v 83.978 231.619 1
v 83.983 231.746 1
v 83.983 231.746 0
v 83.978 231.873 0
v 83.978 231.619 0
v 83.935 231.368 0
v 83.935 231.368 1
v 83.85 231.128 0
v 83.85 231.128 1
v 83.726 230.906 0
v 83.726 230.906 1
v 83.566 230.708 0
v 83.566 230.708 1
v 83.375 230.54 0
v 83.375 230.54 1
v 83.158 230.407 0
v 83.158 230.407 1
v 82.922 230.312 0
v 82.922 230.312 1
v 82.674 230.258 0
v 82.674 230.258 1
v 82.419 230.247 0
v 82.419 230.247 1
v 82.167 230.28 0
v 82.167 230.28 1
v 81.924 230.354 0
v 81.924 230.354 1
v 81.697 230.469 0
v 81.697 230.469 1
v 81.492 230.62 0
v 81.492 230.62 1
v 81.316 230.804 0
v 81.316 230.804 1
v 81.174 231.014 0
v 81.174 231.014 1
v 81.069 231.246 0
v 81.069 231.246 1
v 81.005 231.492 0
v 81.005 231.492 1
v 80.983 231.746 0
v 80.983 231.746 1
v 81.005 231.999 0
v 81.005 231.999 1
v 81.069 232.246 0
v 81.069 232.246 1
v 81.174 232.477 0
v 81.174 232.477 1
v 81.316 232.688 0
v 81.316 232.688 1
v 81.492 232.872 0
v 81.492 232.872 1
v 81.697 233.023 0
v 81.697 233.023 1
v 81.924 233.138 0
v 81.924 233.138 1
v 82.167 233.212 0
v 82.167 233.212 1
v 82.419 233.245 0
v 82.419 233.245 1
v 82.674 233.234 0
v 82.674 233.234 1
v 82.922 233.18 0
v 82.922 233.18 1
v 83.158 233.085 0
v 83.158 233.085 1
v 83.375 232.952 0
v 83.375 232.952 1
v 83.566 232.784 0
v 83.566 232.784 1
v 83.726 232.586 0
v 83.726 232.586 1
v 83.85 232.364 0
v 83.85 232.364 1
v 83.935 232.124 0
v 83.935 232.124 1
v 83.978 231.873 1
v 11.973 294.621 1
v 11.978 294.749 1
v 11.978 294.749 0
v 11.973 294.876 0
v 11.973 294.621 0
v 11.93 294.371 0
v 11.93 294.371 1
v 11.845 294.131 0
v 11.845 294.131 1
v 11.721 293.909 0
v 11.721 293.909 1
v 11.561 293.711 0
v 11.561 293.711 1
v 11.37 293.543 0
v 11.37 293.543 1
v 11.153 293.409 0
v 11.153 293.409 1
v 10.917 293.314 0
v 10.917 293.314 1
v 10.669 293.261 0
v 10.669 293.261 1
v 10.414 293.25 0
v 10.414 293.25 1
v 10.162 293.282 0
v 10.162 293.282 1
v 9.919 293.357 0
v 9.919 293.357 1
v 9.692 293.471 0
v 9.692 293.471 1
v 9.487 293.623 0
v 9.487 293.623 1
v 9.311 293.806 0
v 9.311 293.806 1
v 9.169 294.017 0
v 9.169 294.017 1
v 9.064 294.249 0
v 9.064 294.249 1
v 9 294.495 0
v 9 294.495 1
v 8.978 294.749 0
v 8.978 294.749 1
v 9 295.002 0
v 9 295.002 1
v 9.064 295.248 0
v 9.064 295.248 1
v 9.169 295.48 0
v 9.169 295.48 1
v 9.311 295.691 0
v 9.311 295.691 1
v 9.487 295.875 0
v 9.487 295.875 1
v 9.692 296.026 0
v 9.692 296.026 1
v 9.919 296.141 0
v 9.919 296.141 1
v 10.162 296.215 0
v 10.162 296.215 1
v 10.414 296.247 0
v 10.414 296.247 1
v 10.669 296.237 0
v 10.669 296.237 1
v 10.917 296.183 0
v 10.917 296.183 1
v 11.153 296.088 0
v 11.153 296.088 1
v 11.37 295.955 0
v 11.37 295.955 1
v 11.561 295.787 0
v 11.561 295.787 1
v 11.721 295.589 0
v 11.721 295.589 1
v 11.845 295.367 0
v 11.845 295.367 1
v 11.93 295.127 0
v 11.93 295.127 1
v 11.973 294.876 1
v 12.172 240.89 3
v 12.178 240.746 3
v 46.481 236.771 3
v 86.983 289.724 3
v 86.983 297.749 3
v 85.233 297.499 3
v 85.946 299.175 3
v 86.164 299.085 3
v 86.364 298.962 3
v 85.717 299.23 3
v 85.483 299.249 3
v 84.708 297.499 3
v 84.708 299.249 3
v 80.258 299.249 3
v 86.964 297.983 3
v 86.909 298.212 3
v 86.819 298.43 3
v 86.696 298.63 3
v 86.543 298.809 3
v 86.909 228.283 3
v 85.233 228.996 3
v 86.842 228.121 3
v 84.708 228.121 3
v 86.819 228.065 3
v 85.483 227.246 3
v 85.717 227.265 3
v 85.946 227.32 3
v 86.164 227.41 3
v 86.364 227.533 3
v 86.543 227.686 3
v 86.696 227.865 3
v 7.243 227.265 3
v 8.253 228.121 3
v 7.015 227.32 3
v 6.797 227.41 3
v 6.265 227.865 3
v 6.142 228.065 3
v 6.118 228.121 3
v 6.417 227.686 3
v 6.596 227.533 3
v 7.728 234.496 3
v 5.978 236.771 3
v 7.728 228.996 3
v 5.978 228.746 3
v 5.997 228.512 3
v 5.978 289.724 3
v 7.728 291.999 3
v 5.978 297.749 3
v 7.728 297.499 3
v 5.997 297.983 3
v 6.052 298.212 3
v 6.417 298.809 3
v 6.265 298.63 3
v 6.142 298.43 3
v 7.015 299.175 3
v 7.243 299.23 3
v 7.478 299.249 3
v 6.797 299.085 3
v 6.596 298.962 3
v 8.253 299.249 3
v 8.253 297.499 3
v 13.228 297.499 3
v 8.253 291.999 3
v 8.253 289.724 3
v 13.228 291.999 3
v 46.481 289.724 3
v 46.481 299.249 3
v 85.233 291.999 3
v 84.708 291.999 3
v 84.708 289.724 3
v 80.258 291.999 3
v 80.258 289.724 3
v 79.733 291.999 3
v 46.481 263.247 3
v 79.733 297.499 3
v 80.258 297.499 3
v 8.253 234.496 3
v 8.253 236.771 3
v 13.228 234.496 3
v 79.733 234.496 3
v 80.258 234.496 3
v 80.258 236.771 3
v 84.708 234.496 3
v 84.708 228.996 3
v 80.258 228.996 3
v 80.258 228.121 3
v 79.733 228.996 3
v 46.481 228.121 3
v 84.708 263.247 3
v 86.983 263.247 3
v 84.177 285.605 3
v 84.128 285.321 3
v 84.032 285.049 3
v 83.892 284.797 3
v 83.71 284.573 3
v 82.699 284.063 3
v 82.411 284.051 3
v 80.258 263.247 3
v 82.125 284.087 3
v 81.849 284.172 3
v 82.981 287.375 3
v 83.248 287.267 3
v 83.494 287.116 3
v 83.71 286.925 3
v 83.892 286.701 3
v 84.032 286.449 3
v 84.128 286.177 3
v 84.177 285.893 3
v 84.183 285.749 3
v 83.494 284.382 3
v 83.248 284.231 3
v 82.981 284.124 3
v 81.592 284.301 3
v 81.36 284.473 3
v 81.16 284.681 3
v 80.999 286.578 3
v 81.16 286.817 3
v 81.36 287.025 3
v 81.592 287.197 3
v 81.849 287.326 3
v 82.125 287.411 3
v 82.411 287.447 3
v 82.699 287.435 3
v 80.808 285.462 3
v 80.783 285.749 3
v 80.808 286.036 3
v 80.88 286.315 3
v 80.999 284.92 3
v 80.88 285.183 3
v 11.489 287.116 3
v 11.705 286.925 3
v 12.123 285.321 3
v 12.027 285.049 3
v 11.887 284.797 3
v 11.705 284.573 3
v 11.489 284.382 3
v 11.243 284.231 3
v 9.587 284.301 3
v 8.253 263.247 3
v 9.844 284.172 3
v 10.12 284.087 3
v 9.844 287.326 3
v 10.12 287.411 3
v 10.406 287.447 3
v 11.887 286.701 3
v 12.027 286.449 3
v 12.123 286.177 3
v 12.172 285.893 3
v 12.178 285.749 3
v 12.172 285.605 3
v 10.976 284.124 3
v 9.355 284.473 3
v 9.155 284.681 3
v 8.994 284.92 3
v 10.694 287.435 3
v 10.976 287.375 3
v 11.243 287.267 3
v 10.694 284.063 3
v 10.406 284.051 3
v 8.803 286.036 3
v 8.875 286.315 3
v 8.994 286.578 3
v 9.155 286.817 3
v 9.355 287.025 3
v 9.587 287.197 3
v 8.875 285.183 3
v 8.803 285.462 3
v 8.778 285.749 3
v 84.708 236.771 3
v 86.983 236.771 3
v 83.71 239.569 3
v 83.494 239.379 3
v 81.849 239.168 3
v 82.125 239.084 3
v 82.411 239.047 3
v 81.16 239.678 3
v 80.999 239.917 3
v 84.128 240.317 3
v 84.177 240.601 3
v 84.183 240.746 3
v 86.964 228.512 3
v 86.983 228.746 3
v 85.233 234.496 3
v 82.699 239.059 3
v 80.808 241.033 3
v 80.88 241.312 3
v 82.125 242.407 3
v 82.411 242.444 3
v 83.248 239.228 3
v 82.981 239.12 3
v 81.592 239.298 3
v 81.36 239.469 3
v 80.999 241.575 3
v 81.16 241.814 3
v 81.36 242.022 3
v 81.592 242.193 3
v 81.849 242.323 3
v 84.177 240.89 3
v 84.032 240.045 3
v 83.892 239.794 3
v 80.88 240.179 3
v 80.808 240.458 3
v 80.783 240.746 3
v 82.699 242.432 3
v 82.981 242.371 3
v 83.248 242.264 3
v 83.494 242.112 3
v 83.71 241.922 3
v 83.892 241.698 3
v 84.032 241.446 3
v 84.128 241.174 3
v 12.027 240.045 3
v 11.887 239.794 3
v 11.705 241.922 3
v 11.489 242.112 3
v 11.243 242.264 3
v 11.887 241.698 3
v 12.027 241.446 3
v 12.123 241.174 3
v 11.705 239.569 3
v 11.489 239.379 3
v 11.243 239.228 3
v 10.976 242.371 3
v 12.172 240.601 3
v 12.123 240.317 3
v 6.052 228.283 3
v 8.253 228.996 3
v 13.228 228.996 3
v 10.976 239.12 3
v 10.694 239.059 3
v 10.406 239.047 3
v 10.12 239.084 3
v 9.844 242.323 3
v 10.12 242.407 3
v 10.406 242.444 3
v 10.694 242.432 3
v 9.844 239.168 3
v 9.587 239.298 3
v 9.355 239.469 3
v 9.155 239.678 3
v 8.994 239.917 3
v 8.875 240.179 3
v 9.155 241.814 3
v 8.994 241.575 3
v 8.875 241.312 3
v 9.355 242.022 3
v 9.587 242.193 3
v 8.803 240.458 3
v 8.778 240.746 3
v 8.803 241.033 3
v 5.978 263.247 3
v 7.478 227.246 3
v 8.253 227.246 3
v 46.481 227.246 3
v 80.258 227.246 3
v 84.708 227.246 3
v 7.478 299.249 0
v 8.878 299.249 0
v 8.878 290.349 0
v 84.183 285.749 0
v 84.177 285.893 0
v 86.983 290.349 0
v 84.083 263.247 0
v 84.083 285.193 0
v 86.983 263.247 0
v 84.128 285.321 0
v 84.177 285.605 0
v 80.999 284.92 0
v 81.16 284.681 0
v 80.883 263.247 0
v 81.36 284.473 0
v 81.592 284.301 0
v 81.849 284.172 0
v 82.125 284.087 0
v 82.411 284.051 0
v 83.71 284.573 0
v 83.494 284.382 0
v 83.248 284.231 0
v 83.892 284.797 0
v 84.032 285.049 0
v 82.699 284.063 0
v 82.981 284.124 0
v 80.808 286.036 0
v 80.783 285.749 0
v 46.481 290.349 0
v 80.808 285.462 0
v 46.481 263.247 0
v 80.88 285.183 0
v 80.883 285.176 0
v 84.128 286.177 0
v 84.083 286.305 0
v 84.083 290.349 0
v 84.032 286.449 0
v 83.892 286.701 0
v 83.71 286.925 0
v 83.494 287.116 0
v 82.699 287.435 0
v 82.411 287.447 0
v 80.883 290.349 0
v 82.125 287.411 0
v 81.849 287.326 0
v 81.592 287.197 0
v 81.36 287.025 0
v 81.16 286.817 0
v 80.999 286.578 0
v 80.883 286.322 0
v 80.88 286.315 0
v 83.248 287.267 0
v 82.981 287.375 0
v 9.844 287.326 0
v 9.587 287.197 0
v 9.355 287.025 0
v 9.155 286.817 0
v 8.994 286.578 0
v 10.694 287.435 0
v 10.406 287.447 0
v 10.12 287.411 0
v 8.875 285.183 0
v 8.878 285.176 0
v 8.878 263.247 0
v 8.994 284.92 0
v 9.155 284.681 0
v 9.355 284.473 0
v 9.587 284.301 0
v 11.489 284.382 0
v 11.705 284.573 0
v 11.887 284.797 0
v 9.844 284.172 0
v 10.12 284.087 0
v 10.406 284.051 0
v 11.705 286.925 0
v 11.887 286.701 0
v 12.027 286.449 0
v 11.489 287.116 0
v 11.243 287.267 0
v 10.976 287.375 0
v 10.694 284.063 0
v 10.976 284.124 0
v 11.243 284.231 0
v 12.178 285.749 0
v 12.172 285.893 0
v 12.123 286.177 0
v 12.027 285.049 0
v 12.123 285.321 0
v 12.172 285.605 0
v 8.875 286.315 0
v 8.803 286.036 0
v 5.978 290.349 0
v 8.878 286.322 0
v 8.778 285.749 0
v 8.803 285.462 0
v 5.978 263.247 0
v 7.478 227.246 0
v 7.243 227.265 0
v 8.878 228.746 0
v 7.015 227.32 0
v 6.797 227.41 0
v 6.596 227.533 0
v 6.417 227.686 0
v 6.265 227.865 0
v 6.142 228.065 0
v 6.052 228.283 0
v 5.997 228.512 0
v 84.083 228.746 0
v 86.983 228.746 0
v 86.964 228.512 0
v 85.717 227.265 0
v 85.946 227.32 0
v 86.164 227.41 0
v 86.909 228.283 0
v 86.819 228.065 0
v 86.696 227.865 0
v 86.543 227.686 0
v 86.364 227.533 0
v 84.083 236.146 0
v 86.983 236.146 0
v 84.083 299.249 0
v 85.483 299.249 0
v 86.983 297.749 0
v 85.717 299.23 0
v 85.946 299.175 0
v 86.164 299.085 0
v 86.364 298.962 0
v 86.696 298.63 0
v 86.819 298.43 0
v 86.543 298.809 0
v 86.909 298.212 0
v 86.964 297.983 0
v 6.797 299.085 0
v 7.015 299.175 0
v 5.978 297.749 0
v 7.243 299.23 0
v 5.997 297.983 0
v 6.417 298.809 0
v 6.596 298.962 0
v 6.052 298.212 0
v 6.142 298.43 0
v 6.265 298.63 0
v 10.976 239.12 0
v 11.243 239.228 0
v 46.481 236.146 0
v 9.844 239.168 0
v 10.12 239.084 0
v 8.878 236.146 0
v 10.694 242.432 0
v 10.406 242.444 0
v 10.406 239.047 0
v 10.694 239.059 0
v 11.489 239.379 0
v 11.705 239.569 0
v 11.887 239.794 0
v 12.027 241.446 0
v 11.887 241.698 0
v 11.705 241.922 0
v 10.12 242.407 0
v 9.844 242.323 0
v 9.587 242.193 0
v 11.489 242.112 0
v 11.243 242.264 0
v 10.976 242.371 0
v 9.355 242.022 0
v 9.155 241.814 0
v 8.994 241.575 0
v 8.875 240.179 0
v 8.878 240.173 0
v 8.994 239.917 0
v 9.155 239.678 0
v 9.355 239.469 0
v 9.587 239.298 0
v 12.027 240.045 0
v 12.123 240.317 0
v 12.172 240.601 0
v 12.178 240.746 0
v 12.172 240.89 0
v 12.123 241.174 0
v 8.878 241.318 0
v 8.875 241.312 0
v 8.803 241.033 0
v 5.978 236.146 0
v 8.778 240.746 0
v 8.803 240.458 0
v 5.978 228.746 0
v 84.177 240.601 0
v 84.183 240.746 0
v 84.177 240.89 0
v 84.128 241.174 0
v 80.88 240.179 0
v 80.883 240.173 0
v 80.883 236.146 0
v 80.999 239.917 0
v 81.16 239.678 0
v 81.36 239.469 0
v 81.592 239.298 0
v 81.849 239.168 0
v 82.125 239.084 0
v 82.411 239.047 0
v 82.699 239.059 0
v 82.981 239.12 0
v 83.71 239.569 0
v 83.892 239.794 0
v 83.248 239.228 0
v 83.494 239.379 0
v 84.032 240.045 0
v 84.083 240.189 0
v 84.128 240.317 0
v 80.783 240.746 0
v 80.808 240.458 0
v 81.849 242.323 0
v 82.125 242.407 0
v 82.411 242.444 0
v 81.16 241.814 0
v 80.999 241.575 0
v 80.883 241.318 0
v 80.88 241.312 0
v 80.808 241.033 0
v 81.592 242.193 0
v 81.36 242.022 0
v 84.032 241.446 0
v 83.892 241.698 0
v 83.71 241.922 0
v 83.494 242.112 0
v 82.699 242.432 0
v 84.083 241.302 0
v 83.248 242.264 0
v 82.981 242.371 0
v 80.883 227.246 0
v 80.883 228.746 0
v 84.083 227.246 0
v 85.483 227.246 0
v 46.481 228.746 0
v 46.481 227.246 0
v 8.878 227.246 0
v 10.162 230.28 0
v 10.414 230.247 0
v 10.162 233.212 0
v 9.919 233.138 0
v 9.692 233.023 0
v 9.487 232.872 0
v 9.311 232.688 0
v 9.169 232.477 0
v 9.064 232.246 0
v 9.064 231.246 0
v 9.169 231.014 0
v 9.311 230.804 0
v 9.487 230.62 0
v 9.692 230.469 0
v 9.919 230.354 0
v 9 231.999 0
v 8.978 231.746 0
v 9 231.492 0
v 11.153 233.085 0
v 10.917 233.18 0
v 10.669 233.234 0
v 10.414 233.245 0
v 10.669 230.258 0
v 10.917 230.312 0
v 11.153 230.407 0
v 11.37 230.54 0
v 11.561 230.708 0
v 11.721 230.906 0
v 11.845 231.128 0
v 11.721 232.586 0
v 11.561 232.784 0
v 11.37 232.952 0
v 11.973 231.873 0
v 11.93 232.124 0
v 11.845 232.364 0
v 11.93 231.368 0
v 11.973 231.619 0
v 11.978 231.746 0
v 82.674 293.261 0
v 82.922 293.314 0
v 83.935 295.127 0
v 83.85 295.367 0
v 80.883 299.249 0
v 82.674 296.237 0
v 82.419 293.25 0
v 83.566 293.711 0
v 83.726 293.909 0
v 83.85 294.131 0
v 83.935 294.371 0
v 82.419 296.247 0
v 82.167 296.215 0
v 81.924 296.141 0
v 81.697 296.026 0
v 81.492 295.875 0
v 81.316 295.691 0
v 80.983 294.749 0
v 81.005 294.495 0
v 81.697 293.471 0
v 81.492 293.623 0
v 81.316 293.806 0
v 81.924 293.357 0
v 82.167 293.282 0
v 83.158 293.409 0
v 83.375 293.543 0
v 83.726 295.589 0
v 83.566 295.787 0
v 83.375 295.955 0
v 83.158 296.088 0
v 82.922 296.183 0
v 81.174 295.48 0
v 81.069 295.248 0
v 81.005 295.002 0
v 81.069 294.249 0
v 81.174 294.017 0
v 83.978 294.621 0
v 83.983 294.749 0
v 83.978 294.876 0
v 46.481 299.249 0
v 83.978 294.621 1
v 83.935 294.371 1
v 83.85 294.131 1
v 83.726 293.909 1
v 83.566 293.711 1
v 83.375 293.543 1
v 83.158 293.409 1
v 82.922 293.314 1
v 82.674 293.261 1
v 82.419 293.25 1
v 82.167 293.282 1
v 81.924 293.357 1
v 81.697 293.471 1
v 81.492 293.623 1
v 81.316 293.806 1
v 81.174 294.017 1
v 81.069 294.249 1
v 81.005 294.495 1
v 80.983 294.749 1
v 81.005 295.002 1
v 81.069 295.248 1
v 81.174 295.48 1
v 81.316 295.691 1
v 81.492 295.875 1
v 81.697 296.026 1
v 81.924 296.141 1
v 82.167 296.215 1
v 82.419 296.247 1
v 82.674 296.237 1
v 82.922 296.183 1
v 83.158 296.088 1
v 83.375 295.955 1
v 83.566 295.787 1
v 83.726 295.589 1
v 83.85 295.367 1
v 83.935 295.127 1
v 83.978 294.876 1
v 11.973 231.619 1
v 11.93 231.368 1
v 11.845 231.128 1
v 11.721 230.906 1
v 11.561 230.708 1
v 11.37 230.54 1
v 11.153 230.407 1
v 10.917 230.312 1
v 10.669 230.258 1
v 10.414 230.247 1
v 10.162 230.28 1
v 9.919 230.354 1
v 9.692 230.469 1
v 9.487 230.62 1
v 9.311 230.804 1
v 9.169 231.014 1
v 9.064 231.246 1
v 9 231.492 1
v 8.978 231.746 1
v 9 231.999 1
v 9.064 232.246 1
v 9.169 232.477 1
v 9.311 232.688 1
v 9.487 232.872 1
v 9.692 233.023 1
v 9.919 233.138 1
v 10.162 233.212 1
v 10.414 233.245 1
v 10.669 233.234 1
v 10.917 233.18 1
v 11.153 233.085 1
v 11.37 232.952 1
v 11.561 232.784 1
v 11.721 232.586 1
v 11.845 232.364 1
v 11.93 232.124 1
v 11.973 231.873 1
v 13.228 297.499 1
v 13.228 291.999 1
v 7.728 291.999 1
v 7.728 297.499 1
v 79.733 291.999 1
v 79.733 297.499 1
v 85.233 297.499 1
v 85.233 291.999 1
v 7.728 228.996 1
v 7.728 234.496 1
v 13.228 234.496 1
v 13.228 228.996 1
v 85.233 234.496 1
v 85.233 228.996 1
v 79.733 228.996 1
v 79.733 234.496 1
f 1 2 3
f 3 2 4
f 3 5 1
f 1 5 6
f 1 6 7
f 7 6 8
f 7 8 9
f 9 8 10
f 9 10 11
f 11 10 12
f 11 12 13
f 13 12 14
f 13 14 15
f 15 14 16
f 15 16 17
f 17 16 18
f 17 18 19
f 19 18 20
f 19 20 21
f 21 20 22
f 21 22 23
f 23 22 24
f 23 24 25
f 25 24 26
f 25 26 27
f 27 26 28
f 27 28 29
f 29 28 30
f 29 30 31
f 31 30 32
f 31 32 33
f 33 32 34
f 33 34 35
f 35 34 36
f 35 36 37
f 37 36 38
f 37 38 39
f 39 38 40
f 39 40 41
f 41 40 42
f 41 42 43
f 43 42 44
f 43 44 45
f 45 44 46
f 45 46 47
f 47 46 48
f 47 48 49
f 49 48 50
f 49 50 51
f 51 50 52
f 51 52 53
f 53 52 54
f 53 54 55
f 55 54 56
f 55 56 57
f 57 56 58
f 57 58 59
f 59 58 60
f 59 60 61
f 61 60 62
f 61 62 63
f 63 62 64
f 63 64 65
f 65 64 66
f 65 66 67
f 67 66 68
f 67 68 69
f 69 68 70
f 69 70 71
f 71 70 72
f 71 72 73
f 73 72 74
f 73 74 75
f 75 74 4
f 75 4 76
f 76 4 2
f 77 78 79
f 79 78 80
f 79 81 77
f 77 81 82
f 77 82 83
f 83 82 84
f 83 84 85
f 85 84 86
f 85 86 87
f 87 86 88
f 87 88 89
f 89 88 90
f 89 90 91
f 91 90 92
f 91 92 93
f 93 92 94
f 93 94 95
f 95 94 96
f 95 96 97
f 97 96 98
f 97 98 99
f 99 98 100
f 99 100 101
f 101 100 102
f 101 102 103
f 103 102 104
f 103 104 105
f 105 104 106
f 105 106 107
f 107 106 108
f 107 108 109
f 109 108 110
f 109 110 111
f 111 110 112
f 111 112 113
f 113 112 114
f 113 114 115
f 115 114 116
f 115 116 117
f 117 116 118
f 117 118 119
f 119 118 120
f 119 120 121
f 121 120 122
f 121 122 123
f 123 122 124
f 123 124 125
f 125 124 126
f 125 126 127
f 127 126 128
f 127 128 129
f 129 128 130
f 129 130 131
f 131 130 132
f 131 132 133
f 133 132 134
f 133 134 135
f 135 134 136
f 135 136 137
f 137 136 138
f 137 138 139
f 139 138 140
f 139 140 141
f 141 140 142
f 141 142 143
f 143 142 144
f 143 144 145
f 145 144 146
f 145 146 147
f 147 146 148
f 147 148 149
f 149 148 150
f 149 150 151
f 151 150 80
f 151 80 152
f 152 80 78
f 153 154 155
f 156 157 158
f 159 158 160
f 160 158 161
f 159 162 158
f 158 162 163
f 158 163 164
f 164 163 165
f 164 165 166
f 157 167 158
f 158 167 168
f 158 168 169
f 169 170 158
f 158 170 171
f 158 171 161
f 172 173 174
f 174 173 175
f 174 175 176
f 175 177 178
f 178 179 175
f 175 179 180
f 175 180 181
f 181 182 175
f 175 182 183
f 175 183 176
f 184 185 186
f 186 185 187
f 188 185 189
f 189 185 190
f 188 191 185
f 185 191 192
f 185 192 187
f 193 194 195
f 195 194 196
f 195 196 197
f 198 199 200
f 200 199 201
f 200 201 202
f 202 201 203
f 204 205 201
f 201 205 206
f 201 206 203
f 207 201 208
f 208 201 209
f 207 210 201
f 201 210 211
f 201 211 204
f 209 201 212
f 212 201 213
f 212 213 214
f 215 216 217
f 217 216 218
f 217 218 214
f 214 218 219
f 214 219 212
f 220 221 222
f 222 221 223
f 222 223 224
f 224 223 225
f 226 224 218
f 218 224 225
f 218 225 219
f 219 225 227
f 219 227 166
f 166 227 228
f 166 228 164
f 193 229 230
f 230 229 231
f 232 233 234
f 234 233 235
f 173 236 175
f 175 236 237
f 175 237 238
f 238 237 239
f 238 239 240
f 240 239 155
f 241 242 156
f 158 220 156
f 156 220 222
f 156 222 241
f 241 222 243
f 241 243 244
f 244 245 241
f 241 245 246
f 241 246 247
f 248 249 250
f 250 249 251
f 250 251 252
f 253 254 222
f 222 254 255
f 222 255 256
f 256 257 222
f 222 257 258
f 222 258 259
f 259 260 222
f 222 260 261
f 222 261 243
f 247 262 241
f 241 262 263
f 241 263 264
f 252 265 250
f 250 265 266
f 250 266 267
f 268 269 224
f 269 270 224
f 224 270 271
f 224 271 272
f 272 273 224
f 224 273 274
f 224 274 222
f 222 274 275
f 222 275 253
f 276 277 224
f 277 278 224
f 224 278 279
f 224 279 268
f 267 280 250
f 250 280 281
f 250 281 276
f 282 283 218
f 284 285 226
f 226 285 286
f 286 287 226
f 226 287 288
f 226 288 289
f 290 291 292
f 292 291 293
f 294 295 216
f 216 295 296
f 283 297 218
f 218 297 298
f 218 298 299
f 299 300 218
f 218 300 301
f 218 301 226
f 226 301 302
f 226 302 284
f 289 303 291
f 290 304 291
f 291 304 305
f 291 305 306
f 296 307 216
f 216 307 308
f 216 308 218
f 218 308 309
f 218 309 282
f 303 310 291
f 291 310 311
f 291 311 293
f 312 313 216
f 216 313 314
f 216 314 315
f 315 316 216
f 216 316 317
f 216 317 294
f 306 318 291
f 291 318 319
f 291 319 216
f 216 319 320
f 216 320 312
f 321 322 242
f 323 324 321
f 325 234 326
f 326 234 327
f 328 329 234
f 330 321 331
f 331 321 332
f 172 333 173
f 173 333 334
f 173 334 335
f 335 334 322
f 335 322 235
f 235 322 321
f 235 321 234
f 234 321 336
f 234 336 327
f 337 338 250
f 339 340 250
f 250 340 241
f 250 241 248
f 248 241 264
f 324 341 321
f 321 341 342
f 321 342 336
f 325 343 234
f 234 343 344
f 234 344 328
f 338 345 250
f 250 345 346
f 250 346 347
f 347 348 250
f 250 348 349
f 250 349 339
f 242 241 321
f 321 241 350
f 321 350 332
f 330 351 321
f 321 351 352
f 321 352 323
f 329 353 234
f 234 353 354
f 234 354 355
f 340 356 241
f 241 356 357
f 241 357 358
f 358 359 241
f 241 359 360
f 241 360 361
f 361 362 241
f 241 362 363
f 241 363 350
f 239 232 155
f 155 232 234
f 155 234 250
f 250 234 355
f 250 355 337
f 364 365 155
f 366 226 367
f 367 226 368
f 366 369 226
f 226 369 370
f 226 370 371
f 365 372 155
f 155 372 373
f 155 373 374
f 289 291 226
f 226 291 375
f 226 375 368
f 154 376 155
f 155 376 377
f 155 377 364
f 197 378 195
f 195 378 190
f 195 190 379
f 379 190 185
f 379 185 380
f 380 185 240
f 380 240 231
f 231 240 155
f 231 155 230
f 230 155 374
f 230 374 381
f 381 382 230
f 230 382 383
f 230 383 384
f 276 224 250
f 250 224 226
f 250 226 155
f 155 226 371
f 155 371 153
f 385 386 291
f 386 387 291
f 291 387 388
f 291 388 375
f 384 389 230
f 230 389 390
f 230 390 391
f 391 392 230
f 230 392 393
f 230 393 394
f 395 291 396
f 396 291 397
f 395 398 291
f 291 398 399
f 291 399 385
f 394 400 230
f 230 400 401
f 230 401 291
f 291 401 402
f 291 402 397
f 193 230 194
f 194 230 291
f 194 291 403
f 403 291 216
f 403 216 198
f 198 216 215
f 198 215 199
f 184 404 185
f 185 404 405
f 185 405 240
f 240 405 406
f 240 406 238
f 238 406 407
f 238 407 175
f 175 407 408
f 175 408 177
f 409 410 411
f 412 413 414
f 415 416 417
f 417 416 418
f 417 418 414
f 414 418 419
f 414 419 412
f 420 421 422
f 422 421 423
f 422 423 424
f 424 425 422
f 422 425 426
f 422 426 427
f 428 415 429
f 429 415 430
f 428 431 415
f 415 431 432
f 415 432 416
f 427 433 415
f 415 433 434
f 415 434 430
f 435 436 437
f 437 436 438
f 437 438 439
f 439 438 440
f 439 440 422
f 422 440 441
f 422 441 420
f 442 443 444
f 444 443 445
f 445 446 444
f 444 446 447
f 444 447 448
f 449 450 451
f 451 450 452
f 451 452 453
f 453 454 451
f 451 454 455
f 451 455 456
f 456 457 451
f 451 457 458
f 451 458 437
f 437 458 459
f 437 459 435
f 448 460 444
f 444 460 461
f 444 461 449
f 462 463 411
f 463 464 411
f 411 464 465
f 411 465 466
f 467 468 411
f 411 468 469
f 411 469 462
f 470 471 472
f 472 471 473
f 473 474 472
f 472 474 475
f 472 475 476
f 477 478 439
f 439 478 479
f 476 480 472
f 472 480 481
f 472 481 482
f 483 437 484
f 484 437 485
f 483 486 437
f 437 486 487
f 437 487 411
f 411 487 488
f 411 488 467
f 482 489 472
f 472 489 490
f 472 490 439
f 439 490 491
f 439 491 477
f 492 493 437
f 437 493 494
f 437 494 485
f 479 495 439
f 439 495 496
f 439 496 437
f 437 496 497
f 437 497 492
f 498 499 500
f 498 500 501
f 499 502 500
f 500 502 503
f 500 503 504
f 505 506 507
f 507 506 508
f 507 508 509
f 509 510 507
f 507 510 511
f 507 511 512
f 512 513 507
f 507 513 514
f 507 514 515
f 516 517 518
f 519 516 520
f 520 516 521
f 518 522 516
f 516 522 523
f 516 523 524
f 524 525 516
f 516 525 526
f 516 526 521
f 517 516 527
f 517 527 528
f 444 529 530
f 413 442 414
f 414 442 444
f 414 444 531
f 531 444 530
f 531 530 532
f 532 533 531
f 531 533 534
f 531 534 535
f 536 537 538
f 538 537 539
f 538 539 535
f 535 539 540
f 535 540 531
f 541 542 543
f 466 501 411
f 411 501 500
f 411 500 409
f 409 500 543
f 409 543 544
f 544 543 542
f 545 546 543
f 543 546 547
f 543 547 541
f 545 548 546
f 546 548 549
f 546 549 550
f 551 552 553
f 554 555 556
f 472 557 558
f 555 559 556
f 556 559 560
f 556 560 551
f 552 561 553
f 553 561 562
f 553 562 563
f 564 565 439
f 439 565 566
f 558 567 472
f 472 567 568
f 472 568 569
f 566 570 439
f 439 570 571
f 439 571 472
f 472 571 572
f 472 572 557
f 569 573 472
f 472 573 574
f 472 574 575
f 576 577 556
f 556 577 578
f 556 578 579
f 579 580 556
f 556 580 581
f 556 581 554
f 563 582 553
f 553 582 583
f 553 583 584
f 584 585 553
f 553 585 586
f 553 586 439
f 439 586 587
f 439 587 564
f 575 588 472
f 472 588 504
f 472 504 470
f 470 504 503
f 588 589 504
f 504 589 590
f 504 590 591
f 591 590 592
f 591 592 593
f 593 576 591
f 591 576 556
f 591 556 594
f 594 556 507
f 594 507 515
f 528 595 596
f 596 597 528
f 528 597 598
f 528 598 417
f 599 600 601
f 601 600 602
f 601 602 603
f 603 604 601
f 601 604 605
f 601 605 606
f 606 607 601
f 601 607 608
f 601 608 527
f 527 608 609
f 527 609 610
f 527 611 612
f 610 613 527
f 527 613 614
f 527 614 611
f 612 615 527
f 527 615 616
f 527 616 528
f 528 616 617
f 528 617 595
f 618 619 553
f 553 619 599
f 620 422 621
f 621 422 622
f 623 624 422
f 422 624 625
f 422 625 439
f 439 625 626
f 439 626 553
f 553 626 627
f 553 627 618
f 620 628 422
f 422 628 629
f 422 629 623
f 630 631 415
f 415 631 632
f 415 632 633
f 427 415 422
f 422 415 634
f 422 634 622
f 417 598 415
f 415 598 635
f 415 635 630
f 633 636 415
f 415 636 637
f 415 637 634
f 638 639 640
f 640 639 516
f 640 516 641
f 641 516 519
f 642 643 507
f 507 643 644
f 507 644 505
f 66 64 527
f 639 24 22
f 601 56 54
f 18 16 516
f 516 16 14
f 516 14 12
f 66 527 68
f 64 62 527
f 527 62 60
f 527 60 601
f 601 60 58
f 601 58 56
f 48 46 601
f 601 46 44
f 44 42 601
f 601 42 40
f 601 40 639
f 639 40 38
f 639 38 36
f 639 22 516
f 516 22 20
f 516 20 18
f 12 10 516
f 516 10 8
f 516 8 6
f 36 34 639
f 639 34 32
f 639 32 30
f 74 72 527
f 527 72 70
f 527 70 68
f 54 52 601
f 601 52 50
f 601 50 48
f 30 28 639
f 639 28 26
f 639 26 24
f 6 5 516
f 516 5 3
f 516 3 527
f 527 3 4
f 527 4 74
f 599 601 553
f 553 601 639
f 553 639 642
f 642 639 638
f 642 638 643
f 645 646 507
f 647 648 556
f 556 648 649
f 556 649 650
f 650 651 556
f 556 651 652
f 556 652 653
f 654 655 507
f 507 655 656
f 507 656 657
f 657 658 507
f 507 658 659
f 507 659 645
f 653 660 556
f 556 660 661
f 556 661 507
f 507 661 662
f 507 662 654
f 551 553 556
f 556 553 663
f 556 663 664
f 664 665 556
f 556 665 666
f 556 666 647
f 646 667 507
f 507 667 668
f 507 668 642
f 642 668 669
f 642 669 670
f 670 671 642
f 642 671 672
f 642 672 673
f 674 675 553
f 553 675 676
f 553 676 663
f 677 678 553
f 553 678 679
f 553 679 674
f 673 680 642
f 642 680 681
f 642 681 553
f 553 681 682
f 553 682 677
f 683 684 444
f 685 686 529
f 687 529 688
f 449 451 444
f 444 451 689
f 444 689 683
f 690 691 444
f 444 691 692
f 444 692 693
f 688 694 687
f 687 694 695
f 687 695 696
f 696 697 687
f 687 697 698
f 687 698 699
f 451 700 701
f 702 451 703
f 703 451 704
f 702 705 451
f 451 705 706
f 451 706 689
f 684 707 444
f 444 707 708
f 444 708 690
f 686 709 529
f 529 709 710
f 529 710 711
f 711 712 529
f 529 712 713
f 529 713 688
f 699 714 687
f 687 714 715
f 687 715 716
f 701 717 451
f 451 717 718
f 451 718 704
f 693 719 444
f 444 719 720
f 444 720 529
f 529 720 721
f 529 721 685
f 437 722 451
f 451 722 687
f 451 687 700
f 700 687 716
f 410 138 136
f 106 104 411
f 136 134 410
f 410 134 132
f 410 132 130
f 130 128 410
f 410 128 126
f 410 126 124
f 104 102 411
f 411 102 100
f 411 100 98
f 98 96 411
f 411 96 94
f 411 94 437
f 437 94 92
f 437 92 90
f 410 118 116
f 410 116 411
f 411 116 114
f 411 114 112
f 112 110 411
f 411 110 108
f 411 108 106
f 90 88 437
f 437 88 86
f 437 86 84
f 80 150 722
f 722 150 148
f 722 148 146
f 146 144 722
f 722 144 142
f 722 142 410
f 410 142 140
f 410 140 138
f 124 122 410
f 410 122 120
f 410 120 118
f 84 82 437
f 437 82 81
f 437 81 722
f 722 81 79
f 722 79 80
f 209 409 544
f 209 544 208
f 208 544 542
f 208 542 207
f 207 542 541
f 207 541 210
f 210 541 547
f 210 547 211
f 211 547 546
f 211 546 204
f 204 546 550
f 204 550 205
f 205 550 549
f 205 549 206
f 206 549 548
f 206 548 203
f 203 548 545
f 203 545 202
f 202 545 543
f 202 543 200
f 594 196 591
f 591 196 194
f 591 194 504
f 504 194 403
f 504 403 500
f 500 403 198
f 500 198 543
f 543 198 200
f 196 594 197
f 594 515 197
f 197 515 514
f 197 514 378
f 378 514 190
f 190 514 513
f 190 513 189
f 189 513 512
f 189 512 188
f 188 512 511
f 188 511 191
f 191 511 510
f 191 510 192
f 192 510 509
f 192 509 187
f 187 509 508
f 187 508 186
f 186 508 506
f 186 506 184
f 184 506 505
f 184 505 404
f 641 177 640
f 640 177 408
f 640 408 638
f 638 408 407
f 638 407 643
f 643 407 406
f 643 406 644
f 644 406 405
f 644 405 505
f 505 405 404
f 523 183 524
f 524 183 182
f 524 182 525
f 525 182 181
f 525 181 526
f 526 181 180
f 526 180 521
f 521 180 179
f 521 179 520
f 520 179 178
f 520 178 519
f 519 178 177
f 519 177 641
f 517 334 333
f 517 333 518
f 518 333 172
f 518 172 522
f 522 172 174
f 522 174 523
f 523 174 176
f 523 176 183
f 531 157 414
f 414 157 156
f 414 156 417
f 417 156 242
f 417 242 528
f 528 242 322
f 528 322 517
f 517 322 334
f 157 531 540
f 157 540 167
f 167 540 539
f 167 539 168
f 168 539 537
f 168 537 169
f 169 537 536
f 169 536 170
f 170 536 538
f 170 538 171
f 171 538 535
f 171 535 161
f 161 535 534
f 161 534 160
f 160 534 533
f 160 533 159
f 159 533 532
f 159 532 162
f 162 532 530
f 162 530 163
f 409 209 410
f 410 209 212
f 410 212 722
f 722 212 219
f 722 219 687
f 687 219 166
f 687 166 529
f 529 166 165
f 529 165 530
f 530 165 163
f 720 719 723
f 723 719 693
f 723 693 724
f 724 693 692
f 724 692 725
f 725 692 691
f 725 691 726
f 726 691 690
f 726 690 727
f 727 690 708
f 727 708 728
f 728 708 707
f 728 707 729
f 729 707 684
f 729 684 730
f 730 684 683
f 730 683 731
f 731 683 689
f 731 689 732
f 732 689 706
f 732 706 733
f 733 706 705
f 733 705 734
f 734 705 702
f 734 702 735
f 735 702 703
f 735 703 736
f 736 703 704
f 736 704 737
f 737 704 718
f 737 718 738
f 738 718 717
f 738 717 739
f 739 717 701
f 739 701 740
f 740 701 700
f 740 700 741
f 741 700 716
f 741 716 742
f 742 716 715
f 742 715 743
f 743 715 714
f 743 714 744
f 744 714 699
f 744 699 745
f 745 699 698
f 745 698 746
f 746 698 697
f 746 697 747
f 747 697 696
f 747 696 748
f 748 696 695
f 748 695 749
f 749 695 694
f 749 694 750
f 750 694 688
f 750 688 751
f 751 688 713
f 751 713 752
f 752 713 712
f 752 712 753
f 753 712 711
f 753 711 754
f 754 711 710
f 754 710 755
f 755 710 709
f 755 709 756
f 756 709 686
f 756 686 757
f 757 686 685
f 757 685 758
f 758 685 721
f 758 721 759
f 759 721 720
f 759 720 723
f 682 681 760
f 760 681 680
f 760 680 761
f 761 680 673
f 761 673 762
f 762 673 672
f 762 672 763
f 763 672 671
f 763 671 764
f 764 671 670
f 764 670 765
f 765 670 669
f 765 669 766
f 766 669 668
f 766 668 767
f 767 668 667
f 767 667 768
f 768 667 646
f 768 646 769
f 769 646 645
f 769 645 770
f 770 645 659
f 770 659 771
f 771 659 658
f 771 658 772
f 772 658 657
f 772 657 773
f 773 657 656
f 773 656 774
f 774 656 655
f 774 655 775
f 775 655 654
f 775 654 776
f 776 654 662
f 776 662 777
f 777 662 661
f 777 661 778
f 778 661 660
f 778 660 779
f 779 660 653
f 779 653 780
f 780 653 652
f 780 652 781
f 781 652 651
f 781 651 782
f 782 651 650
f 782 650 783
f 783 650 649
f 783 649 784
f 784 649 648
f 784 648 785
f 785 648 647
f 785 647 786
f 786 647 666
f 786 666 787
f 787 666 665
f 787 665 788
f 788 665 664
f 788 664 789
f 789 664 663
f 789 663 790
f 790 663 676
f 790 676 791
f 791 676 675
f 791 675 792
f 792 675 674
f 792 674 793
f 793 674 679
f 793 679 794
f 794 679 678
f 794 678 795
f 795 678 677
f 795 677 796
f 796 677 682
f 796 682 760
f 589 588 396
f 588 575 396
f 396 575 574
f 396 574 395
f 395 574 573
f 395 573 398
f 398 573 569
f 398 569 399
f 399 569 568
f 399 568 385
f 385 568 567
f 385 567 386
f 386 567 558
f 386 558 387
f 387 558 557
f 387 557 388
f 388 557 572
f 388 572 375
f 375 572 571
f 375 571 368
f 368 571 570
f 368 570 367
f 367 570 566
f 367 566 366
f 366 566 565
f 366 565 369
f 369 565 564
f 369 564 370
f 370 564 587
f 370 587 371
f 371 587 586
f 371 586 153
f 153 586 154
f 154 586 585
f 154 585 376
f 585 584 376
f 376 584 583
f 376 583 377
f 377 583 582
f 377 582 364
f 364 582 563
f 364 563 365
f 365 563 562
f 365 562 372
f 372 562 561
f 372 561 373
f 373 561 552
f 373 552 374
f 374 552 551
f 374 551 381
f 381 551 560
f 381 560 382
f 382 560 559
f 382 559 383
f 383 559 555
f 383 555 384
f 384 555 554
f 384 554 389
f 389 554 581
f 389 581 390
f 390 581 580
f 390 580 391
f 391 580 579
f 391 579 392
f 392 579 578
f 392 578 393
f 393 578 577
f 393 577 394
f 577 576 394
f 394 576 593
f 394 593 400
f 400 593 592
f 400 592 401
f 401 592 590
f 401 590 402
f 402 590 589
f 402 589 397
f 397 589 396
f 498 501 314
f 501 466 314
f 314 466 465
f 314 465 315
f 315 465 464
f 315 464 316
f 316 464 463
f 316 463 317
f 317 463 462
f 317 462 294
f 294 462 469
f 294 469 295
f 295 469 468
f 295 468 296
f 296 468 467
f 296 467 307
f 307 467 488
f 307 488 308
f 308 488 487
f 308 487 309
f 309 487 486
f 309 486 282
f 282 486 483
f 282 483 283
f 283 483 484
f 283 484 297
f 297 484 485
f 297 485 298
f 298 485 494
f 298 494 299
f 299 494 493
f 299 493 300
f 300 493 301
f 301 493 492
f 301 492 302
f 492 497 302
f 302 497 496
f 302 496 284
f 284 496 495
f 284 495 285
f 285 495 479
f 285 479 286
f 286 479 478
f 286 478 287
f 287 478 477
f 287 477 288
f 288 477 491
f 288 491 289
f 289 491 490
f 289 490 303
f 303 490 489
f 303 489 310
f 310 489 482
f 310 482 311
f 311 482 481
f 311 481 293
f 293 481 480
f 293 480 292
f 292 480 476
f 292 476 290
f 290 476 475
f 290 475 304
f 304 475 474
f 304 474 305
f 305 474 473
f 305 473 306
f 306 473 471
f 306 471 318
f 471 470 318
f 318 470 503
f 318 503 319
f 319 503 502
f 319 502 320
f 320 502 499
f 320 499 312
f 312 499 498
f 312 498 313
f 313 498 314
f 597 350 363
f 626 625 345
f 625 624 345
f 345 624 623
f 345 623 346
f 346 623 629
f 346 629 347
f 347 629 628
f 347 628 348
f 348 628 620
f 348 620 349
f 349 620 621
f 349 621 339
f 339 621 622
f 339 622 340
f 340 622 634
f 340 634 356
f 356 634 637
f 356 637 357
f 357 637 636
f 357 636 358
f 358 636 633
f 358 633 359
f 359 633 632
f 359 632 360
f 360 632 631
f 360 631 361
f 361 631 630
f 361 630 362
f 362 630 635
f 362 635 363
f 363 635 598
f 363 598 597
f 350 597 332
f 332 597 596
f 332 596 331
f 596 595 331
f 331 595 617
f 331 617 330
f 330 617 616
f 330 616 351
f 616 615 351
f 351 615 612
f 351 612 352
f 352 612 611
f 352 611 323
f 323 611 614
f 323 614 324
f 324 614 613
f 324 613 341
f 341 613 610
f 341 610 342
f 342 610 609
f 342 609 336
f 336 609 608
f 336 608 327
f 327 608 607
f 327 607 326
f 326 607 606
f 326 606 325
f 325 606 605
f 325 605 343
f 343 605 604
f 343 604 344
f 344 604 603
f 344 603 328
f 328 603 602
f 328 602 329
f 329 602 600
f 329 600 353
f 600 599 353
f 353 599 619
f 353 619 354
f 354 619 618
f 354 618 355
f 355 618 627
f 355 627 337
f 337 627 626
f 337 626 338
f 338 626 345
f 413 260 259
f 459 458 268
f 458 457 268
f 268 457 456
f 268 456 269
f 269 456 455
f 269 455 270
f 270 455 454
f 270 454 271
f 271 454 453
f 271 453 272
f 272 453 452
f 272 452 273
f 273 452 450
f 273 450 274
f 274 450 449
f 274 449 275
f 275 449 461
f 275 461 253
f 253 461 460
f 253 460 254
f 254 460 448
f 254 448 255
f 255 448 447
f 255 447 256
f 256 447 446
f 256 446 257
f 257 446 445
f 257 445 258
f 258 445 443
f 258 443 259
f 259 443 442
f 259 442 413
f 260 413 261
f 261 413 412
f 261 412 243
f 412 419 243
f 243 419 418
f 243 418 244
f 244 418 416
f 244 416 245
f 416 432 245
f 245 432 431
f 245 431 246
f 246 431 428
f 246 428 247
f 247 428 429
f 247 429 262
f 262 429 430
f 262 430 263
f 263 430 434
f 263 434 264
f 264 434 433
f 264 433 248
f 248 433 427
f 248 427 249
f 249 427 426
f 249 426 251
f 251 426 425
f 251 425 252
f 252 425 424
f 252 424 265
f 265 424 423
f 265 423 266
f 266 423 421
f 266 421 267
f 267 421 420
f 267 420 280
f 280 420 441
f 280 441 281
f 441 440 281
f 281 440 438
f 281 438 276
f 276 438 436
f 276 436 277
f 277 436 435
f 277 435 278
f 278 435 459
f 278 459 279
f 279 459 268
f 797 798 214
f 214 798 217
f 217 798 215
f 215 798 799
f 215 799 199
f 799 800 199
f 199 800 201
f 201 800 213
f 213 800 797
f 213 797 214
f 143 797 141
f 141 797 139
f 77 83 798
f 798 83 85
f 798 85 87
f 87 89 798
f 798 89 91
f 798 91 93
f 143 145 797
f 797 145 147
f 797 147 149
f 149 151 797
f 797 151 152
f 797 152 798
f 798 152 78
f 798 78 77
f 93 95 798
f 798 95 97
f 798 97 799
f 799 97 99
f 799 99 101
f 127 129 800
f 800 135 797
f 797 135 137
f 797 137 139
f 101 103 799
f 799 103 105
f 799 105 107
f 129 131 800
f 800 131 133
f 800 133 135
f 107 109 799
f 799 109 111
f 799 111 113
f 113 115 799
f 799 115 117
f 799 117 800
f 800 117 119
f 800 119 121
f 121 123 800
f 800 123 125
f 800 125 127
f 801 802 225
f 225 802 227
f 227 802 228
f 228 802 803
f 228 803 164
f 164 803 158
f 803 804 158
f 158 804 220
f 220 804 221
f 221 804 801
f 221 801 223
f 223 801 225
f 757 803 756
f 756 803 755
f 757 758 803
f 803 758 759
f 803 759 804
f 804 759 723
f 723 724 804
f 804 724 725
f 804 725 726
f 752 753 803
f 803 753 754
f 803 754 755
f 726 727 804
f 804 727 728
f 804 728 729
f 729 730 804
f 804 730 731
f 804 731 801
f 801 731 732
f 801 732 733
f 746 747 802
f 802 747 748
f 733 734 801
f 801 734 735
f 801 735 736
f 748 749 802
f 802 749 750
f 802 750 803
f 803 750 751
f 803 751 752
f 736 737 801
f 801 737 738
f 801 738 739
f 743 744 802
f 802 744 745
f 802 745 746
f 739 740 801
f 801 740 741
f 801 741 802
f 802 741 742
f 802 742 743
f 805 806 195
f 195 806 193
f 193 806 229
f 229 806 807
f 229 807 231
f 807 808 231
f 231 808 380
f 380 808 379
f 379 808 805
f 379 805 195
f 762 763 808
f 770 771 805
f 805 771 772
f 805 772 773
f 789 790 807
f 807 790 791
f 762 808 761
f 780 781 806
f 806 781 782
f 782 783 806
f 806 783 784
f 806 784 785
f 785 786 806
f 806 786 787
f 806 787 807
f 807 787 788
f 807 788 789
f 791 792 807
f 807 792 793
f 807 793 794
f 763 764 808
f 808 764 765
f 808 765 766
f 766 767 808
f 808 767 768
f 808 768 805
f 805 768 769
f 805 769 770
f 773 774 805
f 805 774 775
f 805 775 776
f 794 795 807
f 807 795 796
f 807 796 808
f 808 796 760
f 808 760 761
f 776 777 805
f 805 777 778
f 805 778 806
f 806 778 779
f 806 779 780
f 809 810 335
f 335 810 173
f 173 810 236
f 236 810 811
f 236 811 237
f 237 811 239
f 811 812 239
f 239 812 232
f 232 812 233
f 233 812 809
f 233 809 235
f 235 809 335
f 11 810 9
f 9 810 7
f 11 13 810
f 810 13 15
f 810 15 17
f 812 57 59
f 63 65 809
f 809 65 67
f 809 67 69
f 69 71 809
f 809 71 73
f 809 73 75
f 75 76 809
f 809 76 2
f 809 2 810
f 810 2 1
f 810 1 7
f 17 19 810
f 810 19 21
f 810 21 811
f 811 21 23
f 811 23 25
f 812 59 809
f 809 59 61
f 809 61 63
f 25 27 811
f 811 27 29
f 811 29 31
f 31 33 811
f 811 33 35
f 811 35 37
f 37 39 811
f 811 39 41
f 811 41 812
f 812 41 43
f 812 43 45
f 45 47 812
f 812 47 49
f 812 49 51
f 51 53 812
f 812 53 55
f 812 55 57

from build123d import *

# Parameters (mm, degrees)
MODEL_R                 = 1.5
MODEL_R_2               = 1.7
SALIENTE_EXTRUIR1_DEPTH = 3
CROQUIS2_W              = 5.5
CROQUIS2_H              = 5.5
CORTAR_EXTRUIR1_DEPTH   = 2


with BuildPart() as part:
    # Model → Saliente-Extruir1 (new body)
    with BuildSketch(Plane.XY):
        with BuildLine():
            Line((85.482701858, 227.246277544), (7.478092, 227.246277544))
            ThreePointArc((7.478092, 227.246277544), (6.417431828, 227.685617372), (5.978092, 228.746277544))
            Line((5.978092, 228.746277544), (5.978092, 297.748681778))
            ThreePointArc((5.978092, 297.748681778), (6.417431828, 298.80934195), (7.478092, 299.248681778))
            Line((7.478092, 299.248681778), (85.482701858, 299.248681778))
            ThreePointArc((85.482701858, 299.248681778), (86.54336203, 298.80934195), (86.982701858, 297.748681778))
            Line((86.982701858, 297.748681778), (86.982701858, 228.746277544))
            ThreePointArc((86.982701858, 228.746277544), (86.54336203, 227.685617372), (85.482701858, 227.246277544))
        make_face()
        with Locations((82.48303636, 294.748681778)):
            Circle(MODEL_R, mode=Mode.SUBTRACT)
        with Locations((10.478092, 231.745943042)):
            Circle(MODEL_R, mode=Mode.SUBTRACT)
        with Locations((82.48303636, 231.745943042)):
            Circle(MODEL_R, mode=Mode.SUBTRACT)
        with Locations((10.478092, 294.748681778)):
            Circle(MODEL_R, mode=Mode.SUBTRACT)
        with Locations((10.478092, 240.74560854)):
            Circle(MODEL_R_2, mode=Mode.SUBTRACT)
        with Locations((10.478092, 285.74901628)):
            Circle(MODEL_R_2, mode=Mode.SUBTRACT)
        with Locations((82.48303636, 240.74560854)):
            Circle(MODEL_R_2, mode=Mode.SUBTRACT)
        with Locations((82.48303636, 285.74901628)):
            Circle(MODEL_R_2, mode=Mode.SUBTRACT)
    extrude(amount=SALIENTE_EXTRUIR1_DEPTH)

    # Croquis2 → Cortar-Extruir1 (cut)
    with BuildSketch(Plane.XY.offset(3)):
        with Locations((10.478092, 294.748681778)):
            Rectangle(CROQUIS2_W, CROQUIS2_H)
        with Locations((82.48303636, 294.748681778)):
            Rectangle(CROQUIS2_W, CROQUIS2_H)
        with Locations((10.478092, 231.745943042)):
            Rectangle(CROQUIS2_W, CROQUIS2_H)
        with Locations((82.48303636, 231.745943042)):
            Rectangle(CROQUIS2_W, CROQUIS2_H)
    extrude(amount=-CORTAR_EXTRUIR1_DEPTH, mode=Mode.SUBTRACT)


solid = part.part
